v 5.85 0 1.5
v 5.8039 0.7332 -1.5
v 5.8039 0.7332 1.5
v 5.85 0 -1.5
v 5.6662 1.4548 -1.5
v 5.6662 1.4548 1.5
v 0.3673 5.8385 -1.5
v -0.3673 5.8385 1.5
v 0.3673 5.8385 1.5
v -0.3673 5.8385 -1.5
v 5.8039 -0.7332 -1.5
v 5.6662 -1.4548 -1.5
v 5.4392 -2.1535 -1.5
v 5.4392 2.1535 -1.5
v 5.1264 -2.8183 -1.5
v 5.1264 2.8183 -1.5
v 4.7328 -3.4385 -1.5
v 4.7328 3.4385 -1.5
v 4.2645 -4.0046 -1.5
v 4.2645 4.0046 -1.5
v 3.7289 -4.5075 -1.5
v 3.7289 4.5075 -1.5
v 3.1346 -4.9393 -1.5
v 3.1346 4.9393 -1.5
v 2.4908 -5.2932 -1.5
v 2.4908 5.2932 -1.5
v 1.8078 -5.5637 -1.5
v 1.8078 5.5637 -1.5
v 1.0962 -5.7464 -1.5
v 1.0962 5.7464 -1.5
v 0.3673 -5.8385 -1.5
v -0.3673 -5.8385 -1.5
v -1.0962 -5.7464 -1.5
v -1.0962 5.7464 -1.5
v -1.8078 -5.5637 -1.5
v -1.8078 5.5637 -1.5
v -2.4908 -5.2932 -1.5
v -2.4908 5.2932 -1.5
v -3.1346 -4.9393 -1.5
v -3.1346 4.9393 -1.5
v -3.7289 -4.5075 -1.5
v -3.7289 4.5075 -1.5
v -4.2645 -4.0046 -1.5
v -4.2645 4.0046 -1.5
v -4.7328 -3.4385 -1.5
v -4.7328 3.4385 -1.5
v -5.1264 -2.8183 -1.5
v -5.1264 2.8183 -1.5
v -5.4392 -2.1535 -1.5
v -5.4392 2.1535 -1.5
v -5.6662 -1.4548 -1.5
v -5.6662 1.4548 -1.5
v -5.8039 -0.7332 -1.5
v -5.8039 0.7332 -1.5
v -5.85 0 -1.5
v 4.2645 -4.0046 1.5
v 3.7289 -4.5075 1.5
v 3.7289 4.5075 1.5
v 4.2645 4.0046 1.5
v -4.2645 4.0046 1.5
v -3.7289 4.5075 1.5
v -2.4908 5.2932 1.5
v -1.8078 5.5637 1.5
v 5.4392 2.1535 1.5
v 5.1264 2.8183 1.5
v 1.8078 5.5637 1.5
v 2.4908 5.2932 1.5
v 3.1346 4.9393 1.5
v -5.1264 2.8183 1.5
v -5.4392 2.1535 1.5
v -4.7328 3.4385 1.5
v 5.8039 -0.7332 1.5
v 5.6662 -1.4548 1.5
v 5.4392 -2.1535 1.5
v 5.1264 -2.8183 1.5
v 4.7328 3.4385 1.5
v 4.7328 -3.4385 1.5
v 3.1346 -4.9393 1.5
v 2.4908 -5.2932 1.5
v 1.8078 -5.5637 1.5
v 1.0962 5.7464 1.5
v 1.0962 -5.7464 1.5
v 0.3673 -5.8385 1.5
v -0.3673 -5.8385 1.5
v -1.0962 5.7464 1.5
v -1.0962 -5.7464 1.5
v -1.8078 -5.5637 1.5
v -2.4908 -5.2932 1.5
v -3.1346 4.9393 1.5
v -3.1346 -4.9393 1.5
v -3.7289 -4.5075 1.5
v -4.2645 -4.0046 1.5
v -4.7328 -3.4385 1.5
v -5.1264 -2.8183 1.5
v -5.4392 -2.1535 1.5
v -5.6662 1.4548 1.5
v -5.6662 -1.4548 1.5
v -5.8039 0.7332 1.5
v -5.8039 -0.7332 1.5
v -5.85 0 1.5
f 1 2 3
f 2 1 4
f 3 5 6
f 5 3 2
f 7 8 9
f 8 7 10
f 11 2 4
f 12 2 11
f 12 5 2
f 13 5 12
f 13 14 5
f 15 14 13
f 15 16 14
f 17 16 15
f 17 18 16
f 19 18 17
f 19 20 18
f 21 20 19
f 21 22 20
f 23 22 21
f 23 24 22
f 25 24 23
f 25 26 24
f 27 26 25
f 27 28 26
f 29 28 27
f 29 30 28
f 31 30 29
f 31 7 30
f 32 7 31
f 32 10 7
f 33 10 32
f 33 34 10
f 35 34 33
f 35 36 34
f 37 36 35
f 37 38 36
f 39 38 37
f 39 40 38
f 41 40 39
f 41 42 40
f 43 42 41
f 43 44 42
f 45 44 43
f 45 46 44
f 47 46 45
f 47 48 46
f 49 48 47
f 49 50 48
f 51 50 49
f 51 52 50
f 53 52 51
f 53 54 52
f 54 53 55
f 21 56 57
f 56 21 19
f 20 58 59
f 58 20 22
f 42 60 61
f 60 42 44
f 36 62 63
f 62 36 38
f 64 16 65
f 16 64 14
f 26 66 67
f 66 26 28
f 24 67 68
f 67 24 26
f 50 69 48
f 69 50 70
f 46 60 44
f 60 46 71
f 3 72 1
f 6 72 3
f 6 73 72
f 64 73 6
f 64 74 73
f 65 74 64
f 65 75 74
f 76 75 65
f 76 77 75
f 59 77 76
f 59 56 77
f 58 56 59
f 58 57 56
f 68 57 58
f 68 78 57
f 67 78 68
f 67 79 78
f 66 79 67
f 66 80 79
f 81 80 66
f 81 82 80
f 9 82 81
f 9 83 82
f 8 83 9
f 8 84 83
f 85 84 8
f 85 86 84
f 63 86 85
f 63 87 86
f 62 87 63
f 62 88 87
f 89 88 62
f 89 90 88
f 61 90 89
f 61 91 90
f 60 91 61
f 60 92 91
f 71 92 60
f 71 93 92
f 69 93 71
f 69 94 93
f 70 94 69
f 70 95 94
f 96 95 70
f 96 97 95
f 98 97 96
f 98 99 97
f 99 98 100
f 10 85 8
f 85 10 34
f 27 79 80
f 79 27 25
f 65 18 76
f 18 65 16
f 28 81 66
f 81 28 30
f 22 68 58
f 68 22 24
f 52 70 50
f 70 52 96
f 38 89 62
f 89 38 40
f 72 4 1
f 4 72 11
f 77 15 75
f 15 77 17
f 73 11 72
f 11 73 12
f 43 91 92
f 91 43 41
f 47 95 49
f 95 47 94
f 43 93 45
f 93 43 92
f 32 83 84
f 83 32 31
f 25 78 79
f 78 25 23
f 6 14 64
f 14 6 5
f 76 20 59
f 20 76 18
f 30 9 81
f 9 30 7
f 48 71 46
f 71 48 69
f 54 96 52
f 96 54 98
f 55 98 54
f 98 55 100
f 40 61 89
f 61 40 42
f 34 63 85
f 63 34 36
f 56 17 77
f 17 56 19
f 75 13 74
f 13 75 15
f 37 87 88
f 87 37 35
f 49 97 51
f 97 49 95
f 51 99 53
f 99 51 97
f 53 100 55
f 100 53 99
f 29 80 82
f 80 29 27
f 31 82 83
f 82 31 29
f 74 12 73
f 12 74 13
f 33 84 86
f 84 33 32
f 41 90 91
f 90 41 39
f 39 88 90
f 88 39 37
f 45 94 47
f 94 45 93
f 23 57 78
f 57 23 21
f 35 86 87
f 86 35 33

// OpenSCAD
$fn = 50;


difference() {
	union() {
		translate(v = [0, 0, -1.5000000000]) {
			cylinder(h = 3, r = 5.8500000000);
		}
	}
	union() {
		translate(v = [0, 0, -100.0000000000]) {
			cylinder(h = 200, r = 0);
		}
	}
}
